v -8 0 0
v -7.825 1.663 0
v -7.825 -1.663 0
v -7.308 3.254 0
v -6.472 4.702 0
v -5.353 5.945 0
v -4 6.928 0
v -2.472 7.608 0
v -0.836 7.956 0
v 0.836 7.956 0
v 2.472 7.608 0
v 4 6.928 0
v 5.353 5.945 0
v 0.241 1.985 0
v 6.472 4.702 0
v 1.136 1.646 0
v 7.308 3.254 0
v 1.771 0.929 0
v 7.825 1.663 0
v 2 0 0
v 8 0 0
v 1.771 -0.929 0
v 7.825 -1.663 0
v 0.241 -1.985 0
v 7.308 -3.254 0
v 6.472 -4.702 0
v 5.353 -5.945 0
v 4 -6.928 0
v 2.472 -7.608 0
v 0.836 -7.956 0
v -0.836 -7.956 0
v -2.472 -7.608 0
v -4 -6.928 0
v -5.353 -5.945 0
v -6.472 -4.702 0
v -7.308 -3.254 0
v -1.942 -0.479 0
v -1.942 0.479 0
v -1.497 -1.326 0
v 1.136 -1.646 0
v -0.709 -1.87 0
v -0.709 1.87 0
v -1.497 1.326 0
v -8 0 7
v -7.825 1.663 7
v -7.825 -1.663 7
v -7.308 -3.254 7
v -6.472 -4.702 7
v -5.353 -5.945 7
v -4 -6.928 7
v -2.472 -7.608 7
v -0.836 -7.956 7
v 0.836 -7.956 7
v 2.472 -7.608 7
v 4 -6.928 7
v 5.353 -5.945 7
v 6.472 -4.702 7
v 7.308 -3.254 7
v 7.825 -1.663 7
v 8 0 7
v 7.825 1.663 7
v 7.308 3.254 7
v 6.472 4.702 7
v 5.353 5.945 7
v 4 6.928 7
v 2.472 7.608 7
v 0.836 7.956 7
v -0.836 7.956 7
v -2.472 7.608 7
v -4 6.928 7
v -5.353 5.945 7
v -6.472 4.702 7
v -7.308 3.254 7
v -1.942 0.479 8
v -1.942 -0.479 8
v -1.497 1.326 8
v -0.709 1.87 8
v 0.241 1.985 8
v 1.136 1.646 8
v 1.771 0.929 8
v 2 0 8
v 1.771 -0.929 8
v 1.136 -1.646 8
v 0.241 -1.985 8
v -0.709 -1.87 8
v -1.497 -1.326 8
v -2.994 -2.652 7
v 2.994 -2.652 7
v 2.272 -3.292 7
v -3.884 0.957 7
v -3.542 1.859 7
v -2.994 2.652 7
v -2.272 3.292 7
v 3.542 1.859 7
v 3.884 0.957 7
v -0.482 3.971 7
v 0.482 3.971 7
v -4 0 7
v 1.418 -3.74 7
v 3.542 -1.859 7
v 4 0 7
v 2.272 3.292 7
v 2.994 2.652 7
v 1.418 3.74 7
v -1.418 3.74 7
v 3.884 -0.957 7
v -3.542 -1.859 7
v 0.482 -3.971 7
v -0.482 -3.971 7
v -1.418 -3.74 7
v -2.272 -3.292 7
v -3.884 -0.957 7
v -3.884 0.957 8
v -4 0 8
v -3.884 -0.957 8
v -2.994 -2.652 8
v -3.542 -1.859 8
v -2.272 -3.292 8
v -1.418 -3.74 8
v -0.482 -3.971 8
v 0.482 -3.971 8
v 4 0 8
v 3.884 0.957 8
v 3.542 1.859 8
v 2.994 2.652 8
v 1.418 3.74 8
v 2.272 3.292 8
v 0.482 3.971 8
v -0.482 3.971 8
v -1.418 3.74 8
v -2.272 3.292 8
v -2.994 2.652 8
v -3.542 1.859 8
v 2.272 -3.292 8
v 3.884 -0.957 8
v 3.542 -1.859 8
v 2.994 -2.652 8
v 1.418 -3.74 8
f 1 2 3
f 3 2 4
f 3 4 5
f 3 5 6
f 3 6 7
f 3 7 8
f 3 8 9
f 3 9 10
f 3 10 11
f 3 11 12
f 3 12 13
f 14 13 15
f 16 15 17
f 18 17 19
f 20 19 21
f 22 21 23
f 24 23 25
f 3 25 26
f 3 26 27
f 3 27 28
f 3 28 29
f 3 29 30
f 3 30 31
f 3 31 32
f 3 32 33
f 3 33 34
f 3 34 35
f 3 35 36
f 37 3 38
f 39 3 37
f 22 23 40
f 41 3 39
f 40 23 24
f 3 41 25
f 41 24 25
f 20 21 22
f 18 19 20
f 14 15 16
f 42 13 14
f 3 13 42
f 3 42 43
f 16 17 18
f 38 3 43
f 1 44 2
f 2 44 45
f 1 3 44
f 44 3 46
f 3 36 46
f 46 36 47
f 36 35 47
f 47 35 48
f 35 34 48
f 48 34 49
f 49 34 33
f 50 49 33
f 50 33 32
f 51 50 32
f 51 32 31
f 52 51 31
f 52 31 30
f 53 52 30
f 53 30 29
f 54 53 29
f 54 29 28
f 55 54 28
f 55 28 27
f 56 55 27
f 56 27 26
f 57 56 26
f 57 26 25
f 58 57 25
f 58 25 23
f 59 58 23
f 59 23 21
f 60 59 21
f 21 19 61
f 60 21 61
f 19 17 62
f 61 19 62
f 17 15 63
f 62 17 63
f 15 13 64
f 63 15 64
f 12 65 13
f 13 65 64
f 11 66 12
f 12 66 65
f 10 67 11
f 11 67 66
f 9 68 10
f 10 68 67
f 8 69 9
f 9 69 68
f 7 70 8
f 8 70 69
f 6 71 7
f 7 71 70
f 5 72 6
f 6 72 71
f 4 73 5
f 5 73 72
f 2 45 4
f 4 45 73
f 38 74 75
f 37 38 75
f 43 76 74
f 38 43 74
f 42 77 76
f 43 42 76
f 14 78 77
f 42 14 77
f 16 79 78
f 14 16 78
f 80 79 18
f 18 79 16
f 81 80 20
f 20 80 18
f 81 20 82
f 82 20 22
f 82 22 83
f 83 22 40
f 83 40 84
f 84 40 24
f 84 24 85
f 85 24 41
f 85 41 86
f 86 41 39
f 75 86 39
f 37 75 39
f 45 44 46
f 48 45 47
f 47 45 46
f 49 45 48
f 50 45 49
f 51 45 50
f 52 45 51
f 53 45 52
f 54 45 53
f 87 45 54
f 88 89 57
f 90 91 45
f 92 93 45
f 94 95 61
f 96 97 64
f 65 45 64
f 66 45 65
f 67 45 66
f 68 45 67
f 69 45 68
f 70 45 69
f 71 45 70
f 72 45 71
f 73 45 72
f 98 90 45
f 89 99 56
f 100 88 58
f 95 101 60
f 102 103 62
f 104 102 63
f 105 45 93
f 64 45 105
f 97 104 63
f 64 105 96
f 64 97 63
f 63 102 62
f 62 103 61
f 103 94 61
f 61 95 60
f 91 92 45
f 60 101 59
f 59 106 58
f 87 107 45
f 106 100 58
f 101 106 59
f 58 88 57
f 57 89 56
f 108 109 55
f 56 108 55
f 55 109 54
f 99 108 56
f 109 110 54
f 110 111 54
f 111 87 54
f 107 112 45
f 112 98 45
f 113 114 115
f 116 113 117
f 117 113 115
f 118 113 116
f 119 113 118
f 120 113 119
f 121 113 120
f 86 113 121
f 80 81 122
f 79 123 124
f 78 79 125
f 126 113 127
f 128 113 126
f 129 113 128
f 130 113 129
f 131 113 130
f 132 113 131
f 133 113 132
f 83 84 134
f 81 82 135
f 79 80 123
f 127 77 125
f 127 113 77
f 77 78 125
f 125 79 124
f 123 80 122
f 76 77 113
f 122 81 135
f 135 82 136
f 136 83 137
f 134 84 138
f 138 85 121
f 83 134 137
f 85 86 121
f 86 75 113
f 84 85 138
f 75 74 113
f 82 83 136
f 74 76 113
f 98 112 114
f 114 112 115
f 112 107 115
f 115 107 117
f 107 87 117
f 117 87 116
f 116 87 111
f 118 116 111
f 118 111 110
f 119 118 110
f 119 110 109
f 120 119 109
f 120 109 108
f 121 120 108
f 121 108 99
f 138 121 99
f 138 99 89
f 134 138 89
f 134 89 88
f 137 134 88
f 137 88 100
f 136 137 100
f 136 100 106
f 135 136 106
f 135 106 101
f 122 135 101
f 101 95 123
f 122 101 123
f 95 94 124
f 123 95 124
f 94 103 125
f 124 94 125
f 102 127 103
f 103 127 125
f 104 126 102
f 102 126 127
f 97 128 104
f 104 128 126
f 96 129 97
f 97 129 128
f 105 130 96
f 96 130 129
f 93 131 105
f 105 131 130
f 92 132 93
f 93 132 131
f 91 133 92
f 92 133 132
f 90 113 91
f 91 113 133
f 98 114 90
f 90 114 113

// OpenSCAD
od = 16;
id = 4;
height=8;


difference(){
	union(){
		cylinder(h=height-1,r=od/2,center=false,$fs=1);
		cylinder(h=height,r=id,center=false,$fs=1);
	}
	cylinder(h=height,r=id/2,center=false,$fs=1);
}
